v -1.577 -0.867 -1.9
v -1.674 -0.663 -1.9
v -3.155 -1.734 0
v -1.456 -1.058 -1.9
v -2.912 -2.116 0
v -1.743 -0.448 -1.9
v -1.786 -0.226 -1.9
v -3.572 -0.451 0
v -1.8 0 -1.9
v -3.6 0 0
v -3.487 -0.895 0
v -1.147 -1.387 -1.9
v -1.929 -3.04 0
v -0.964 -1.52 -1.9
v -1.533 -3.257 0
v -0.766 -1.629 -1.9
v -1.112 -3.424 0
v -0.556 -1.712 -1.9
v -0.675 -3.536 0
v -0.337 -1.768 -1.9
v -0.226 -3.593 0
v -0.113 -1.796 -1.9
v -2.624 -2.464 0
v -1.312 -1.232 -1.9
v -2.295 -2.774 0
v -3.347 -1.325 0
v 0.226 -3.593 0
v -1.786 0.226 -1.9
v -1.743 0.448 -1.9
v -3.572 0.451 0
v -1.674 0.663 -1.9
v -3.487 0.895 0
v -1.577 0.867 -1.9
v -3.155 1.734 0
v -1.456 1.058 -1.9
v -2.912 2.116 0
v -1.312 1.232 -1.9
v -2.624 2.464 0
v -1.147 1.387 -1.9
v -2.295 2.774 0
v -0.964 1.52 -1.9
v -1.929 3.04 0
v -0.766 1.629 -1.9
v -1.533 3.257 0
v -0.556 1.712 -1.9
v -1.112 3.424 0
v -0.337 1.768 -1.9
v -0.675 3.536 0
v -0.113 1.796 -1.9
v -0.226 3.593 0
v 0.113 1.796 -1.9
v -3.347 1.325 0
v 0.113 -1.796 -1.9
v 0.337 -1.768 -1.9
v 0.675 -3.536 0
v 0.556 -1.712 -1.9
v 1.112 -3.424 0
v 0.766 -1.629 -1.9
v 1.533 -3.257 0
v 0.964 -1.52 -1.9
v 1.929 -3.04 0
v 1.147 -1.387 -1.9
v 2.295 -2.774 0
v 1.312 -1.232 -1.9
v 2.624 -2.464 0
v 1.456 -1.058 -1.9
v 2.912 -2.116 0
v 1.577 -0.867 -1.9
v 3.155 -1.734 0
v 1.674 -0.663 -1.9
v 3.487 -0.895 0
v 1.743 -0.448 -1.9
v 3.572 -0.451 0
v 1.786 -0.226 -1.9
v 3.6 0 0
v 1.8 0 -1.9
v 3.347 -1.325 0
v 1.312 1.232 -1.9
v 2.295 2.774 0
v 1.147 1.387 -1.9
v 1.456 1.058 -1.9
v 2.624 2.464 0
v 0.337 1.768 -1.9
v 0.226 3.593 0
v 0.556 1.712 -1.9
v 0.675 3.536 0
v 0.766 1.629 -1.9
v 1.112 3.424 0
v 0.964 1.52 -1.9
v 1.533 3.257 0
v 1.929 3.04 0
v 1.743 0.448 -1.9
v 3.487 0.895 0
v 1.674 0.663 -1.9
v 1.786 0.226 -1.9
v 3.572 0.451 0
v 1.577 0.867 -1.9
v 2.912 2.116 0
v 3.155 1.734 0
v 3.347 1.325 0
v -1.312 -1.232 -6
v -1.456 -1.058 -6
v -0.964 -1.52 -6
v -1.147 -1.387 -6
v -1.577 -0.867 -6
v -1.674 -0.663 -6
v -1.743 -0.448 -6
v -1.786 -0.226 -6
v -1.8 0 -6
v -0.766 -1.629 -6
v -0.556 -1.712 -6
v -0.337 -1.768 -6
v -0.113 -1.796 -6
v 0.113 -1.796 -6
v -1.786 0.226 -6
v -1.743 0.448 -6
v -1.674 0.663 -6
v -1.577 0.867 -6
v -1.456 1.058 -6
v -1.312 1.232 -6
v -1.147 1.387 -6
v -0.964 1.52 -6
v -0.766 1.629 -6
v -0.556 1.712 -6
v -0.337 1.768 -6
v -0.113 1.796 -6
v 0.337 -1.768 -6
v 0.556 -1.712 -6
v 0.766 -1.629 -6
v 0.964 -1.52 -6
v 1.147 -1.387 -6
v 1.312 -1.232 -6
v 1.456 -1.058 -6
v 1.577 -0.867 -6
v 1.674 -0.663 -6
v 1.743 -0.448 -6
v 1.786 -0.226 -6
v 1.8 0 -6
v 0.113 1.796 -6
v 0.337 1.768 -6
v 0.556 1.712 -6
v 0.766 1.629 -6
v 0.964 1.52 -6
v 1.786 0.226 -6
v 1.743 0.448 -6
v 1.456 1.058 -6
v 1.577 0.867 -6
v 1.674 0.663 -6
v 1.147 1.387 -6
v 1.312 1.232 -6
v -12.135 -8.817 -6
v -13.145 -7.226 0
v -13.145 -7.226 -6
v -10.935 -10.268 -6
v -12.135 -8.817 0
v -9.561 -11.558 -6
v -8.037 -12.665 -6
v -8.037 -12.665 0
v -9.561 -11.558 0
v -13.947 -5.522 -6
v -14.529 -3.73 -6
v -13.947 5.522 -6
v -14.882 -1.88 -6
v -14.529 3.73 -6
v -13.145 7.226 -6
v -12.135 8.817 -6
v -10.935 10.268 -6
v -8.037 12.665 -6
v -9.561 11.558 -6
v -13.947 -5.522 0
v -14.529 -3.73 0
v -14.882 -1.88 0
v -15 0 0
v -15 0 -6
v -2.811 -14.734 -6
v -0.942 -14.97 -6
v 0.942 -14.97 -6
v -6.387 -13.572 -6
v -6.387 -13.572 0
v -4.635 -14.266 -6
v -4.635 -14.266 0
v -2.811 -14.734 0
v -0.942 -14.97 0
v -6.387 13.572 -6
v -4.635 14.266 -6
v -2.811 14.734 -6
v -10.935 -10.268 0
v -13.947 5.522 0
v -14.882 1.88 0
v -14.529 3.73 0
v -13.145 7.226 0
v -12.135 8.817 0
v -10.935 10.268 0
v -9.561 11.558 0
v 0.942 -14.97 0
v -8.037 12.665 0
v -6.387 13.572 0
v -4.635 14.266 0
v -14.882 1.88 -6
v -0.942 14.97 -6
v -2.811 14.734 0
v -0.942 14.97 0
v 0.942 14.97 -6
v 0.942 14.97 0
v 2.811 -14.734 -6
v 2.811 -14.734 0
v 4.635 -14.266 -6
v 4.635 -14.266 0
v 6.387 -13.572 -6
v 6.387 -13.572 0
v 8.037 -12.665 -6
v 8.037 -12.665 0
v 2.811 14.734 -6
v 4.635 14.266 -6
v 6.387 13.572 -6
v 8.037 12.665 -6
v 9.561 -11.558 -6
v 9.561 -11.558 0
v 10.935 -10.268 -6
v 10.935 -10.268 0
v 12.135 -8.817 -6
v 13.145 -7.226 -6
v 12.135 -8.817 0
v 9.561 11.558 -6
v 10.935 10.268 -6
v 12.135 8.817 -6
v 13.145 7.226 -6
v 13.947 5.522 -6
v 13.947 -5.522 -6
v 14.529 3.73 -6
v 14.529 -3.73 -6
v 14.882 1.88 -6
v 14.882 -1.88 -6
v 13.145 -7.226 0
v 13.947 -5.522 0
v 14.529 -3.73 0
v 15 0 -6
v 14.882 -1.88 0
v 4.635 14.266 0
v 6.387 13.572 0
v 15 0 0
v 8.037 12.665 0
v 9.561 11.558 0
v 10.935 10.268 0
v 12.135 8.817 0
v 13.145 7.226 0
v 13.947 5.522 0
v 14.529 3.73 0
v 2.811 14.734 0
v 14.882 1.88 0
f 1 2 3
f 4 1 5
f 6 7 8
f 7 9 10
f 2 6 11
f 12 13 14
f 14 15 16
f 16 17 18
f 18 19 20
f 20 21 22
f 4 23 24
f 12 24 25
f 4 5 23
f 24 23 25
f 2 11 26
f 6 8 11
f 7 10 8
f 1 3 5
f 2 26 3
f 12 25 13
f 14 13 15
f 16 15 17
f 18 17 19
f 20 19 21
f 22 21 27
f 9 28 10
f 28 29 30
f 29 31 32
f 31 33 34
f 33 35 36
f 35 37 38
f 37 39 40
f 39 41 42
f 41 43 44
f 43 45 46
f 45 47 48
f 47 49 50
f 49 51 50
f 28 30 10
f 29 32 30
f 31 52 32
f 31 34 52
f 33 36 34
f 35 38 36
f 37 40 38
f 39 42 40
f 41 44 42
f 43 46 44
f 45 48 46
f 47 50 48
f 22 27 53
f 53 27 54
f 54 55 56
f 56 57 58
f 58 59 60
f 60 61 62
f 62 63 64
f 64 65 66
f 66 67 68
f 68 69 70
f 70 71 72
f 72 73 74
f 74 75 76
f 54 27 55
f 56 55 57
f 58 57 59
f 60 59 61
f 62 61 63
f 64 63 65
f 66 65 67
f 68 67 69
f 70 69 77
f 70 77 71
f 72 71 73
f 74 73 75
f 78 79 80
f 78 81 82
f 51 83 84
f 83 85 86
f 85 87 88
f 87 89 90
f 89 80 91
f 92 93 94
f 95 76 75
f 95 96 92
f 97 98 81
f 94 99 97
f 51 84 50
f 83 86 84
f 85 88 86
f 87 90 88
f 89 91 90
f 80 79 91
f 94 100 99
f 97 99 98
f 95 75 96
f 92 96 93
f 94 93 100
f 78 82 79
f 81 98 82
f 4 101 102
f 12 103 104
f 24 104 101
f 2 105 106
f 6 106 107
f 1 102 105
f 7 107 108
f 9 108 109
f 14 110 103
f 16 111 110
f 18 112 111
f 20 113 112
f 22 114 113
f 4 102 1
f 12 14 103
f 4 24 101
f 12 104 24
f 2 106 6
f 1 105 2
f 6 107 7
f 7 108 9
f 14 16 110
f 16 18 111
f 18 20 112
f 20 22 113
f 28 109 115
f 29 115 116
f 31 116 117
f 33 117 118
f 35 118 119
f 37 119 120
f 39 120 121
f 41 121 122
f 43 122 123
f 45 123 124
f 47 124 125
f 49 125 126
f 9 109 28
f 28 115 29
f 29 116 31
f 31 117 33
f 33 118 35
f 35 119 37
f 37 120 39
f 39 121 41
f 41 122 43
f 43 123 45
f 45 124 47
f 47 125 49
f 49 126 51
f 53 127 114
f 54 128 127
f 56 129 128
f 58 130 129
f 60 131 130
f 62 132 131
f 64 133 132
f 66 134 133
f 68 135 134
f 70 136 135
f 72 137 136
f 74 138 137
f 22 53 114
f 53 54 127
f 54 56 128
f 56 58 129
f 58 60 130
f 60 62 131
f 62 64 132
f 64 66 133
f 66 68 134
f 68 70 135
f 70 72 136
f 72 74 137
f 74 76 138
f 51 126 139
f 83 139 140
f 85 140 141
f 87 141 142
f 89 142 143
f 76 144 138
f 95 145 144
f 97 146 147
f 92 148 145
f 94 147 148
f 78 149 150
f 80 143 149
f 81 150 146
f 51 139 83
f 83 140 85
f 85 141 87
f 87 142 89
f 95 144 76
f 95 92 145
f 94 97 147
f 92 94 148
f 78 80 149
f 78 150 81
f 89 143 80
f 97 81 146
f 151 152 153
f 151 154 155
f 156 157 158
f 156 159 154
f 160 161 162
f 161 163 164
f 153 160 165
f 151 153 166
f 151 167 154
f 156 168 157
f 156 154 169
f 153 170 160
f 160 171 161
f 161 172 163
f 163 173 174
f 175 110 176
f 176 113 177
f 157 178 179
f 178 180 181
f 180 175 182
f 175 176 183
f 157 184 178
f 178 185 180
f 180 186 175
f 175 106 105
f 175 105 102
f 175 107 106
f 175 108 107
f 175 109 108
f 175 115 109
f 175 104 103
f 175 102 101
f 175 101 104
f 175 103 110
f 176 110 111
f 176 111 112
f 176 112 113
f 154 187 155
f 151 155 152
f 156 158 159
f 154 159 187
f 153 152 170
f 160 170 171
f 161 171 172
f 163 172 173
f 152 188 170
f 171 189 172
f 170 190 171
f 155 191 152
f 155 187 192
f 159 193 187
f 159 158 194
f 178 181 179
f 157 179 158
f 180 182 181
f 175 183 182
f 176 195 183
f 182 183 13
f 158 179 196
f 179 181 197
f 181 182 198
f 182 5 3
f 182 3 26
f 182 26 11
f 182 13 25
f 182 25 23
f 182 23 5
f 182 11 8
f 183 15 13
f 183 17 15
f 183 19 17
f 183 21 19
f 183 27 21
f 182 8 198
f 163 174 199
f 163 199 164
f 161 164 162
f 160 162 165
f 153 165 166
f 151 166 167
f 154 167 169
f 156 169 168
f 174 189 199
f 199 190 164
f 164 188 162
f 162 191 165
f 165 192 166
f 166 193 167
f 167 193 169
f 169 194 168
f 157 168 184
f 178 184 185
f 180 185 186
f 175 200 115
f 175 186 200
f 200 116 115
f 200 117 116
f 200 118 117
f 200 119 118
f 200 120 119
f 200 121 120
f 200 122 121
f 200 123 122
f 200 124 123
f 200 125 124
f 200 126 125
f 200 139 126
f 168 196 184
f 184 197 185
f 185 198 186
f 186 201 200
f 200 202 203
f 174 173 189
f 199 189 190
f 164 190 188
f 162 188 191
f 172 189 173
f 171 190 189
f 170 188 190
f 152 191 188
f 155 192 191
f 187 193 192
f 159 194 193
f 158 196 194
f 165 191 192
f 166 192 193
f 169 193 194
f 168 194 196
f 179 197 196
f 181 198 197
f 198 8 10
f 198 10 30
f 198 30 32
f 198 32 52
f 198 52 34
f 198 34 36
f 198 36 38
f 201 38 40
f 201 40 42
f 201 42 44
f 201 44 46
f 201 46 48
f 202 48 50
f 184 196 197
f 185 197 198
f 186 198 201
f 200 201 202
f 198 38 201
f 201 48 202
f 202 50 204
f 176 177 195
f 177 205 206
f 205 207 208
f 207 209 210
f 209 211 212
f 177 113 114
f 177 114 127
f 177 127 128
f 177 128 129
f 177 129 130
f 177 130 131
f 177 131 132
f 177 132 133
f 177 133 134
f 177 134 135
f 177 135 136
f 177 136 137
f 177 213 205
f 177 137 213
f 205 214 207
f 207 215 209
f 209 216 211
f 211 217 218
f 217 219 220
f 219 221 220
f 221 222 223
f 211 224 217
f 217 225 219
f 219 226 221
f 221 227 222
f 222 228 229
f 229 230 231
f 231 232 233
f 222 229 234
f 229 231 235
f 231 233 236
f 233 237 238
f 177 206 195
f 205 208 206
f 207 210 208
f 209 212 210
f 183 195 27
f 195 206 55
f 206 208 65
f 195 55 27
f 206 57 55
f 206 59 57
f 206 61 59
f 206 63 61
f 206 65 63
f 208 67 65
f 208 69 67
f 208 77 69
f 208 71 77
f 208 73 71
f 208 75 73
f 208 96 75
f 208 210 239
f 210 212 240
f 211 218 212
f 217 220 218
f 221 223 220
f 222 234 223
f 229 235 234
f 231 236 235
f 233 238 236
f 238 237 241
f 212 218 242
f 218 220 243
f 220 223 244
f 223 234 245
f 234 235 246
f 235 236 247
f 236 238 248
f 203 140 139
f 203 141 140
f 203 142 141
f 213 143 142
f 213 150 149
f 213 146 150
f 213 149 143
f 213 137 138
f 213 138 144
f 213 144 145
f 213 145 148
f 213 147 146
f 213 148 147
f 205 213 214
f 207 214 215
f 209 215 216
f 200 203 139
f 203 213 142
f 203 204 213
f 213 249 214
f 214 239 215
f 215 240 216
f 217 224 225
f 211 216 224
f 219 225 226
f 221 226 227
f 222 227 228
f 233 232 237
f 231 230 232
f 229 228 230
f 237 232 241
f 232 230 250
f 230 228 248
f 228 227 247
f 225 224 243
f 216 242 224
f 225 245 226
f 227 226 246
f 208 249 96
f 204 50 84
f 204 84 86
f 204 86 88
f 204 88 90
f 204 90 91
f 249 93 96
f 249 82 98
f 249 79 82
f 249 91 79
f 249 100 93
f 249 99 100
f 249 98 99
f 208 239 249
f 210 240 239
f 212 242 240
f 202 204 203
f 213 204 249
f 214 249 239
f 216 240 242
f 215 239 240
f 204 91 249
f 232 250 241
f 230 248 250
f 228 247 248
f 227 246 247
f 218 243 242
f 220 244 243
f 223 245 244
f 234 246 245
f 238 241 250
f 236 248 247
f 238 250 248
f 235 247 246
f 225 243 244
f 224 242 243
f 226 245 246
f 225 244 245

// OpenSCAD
$fn = 50;

difference() {
	union() {
		translate(v = [0, 0, -6.0]) {
			cylinder(h = 6, r = 15.0);
		}
	}
	union() {
		translate(v = [0, 0, 0]) {
			rotate(a = [0, 0, 0]) {
				difference() {
					union() {
						translate(v = [0, 0, -9.0]) {
							cylinder(h = 9, r = 1.5);
						}
						translate(v = [0, 0, -1.9]) {
							cylinder(h = 1.9, r1 = 1.8, r2 = 3.6);
						}
						translate(v = [0, 0, -9.0]) {
							cylinder(h = 9, r = 1.8);
						}
						translate(v = [0, 0, -9.0]) {
							cylinder(h = 9, r = 1.5);
						}
					}
					union();
				}
			}
		}
	}
}
